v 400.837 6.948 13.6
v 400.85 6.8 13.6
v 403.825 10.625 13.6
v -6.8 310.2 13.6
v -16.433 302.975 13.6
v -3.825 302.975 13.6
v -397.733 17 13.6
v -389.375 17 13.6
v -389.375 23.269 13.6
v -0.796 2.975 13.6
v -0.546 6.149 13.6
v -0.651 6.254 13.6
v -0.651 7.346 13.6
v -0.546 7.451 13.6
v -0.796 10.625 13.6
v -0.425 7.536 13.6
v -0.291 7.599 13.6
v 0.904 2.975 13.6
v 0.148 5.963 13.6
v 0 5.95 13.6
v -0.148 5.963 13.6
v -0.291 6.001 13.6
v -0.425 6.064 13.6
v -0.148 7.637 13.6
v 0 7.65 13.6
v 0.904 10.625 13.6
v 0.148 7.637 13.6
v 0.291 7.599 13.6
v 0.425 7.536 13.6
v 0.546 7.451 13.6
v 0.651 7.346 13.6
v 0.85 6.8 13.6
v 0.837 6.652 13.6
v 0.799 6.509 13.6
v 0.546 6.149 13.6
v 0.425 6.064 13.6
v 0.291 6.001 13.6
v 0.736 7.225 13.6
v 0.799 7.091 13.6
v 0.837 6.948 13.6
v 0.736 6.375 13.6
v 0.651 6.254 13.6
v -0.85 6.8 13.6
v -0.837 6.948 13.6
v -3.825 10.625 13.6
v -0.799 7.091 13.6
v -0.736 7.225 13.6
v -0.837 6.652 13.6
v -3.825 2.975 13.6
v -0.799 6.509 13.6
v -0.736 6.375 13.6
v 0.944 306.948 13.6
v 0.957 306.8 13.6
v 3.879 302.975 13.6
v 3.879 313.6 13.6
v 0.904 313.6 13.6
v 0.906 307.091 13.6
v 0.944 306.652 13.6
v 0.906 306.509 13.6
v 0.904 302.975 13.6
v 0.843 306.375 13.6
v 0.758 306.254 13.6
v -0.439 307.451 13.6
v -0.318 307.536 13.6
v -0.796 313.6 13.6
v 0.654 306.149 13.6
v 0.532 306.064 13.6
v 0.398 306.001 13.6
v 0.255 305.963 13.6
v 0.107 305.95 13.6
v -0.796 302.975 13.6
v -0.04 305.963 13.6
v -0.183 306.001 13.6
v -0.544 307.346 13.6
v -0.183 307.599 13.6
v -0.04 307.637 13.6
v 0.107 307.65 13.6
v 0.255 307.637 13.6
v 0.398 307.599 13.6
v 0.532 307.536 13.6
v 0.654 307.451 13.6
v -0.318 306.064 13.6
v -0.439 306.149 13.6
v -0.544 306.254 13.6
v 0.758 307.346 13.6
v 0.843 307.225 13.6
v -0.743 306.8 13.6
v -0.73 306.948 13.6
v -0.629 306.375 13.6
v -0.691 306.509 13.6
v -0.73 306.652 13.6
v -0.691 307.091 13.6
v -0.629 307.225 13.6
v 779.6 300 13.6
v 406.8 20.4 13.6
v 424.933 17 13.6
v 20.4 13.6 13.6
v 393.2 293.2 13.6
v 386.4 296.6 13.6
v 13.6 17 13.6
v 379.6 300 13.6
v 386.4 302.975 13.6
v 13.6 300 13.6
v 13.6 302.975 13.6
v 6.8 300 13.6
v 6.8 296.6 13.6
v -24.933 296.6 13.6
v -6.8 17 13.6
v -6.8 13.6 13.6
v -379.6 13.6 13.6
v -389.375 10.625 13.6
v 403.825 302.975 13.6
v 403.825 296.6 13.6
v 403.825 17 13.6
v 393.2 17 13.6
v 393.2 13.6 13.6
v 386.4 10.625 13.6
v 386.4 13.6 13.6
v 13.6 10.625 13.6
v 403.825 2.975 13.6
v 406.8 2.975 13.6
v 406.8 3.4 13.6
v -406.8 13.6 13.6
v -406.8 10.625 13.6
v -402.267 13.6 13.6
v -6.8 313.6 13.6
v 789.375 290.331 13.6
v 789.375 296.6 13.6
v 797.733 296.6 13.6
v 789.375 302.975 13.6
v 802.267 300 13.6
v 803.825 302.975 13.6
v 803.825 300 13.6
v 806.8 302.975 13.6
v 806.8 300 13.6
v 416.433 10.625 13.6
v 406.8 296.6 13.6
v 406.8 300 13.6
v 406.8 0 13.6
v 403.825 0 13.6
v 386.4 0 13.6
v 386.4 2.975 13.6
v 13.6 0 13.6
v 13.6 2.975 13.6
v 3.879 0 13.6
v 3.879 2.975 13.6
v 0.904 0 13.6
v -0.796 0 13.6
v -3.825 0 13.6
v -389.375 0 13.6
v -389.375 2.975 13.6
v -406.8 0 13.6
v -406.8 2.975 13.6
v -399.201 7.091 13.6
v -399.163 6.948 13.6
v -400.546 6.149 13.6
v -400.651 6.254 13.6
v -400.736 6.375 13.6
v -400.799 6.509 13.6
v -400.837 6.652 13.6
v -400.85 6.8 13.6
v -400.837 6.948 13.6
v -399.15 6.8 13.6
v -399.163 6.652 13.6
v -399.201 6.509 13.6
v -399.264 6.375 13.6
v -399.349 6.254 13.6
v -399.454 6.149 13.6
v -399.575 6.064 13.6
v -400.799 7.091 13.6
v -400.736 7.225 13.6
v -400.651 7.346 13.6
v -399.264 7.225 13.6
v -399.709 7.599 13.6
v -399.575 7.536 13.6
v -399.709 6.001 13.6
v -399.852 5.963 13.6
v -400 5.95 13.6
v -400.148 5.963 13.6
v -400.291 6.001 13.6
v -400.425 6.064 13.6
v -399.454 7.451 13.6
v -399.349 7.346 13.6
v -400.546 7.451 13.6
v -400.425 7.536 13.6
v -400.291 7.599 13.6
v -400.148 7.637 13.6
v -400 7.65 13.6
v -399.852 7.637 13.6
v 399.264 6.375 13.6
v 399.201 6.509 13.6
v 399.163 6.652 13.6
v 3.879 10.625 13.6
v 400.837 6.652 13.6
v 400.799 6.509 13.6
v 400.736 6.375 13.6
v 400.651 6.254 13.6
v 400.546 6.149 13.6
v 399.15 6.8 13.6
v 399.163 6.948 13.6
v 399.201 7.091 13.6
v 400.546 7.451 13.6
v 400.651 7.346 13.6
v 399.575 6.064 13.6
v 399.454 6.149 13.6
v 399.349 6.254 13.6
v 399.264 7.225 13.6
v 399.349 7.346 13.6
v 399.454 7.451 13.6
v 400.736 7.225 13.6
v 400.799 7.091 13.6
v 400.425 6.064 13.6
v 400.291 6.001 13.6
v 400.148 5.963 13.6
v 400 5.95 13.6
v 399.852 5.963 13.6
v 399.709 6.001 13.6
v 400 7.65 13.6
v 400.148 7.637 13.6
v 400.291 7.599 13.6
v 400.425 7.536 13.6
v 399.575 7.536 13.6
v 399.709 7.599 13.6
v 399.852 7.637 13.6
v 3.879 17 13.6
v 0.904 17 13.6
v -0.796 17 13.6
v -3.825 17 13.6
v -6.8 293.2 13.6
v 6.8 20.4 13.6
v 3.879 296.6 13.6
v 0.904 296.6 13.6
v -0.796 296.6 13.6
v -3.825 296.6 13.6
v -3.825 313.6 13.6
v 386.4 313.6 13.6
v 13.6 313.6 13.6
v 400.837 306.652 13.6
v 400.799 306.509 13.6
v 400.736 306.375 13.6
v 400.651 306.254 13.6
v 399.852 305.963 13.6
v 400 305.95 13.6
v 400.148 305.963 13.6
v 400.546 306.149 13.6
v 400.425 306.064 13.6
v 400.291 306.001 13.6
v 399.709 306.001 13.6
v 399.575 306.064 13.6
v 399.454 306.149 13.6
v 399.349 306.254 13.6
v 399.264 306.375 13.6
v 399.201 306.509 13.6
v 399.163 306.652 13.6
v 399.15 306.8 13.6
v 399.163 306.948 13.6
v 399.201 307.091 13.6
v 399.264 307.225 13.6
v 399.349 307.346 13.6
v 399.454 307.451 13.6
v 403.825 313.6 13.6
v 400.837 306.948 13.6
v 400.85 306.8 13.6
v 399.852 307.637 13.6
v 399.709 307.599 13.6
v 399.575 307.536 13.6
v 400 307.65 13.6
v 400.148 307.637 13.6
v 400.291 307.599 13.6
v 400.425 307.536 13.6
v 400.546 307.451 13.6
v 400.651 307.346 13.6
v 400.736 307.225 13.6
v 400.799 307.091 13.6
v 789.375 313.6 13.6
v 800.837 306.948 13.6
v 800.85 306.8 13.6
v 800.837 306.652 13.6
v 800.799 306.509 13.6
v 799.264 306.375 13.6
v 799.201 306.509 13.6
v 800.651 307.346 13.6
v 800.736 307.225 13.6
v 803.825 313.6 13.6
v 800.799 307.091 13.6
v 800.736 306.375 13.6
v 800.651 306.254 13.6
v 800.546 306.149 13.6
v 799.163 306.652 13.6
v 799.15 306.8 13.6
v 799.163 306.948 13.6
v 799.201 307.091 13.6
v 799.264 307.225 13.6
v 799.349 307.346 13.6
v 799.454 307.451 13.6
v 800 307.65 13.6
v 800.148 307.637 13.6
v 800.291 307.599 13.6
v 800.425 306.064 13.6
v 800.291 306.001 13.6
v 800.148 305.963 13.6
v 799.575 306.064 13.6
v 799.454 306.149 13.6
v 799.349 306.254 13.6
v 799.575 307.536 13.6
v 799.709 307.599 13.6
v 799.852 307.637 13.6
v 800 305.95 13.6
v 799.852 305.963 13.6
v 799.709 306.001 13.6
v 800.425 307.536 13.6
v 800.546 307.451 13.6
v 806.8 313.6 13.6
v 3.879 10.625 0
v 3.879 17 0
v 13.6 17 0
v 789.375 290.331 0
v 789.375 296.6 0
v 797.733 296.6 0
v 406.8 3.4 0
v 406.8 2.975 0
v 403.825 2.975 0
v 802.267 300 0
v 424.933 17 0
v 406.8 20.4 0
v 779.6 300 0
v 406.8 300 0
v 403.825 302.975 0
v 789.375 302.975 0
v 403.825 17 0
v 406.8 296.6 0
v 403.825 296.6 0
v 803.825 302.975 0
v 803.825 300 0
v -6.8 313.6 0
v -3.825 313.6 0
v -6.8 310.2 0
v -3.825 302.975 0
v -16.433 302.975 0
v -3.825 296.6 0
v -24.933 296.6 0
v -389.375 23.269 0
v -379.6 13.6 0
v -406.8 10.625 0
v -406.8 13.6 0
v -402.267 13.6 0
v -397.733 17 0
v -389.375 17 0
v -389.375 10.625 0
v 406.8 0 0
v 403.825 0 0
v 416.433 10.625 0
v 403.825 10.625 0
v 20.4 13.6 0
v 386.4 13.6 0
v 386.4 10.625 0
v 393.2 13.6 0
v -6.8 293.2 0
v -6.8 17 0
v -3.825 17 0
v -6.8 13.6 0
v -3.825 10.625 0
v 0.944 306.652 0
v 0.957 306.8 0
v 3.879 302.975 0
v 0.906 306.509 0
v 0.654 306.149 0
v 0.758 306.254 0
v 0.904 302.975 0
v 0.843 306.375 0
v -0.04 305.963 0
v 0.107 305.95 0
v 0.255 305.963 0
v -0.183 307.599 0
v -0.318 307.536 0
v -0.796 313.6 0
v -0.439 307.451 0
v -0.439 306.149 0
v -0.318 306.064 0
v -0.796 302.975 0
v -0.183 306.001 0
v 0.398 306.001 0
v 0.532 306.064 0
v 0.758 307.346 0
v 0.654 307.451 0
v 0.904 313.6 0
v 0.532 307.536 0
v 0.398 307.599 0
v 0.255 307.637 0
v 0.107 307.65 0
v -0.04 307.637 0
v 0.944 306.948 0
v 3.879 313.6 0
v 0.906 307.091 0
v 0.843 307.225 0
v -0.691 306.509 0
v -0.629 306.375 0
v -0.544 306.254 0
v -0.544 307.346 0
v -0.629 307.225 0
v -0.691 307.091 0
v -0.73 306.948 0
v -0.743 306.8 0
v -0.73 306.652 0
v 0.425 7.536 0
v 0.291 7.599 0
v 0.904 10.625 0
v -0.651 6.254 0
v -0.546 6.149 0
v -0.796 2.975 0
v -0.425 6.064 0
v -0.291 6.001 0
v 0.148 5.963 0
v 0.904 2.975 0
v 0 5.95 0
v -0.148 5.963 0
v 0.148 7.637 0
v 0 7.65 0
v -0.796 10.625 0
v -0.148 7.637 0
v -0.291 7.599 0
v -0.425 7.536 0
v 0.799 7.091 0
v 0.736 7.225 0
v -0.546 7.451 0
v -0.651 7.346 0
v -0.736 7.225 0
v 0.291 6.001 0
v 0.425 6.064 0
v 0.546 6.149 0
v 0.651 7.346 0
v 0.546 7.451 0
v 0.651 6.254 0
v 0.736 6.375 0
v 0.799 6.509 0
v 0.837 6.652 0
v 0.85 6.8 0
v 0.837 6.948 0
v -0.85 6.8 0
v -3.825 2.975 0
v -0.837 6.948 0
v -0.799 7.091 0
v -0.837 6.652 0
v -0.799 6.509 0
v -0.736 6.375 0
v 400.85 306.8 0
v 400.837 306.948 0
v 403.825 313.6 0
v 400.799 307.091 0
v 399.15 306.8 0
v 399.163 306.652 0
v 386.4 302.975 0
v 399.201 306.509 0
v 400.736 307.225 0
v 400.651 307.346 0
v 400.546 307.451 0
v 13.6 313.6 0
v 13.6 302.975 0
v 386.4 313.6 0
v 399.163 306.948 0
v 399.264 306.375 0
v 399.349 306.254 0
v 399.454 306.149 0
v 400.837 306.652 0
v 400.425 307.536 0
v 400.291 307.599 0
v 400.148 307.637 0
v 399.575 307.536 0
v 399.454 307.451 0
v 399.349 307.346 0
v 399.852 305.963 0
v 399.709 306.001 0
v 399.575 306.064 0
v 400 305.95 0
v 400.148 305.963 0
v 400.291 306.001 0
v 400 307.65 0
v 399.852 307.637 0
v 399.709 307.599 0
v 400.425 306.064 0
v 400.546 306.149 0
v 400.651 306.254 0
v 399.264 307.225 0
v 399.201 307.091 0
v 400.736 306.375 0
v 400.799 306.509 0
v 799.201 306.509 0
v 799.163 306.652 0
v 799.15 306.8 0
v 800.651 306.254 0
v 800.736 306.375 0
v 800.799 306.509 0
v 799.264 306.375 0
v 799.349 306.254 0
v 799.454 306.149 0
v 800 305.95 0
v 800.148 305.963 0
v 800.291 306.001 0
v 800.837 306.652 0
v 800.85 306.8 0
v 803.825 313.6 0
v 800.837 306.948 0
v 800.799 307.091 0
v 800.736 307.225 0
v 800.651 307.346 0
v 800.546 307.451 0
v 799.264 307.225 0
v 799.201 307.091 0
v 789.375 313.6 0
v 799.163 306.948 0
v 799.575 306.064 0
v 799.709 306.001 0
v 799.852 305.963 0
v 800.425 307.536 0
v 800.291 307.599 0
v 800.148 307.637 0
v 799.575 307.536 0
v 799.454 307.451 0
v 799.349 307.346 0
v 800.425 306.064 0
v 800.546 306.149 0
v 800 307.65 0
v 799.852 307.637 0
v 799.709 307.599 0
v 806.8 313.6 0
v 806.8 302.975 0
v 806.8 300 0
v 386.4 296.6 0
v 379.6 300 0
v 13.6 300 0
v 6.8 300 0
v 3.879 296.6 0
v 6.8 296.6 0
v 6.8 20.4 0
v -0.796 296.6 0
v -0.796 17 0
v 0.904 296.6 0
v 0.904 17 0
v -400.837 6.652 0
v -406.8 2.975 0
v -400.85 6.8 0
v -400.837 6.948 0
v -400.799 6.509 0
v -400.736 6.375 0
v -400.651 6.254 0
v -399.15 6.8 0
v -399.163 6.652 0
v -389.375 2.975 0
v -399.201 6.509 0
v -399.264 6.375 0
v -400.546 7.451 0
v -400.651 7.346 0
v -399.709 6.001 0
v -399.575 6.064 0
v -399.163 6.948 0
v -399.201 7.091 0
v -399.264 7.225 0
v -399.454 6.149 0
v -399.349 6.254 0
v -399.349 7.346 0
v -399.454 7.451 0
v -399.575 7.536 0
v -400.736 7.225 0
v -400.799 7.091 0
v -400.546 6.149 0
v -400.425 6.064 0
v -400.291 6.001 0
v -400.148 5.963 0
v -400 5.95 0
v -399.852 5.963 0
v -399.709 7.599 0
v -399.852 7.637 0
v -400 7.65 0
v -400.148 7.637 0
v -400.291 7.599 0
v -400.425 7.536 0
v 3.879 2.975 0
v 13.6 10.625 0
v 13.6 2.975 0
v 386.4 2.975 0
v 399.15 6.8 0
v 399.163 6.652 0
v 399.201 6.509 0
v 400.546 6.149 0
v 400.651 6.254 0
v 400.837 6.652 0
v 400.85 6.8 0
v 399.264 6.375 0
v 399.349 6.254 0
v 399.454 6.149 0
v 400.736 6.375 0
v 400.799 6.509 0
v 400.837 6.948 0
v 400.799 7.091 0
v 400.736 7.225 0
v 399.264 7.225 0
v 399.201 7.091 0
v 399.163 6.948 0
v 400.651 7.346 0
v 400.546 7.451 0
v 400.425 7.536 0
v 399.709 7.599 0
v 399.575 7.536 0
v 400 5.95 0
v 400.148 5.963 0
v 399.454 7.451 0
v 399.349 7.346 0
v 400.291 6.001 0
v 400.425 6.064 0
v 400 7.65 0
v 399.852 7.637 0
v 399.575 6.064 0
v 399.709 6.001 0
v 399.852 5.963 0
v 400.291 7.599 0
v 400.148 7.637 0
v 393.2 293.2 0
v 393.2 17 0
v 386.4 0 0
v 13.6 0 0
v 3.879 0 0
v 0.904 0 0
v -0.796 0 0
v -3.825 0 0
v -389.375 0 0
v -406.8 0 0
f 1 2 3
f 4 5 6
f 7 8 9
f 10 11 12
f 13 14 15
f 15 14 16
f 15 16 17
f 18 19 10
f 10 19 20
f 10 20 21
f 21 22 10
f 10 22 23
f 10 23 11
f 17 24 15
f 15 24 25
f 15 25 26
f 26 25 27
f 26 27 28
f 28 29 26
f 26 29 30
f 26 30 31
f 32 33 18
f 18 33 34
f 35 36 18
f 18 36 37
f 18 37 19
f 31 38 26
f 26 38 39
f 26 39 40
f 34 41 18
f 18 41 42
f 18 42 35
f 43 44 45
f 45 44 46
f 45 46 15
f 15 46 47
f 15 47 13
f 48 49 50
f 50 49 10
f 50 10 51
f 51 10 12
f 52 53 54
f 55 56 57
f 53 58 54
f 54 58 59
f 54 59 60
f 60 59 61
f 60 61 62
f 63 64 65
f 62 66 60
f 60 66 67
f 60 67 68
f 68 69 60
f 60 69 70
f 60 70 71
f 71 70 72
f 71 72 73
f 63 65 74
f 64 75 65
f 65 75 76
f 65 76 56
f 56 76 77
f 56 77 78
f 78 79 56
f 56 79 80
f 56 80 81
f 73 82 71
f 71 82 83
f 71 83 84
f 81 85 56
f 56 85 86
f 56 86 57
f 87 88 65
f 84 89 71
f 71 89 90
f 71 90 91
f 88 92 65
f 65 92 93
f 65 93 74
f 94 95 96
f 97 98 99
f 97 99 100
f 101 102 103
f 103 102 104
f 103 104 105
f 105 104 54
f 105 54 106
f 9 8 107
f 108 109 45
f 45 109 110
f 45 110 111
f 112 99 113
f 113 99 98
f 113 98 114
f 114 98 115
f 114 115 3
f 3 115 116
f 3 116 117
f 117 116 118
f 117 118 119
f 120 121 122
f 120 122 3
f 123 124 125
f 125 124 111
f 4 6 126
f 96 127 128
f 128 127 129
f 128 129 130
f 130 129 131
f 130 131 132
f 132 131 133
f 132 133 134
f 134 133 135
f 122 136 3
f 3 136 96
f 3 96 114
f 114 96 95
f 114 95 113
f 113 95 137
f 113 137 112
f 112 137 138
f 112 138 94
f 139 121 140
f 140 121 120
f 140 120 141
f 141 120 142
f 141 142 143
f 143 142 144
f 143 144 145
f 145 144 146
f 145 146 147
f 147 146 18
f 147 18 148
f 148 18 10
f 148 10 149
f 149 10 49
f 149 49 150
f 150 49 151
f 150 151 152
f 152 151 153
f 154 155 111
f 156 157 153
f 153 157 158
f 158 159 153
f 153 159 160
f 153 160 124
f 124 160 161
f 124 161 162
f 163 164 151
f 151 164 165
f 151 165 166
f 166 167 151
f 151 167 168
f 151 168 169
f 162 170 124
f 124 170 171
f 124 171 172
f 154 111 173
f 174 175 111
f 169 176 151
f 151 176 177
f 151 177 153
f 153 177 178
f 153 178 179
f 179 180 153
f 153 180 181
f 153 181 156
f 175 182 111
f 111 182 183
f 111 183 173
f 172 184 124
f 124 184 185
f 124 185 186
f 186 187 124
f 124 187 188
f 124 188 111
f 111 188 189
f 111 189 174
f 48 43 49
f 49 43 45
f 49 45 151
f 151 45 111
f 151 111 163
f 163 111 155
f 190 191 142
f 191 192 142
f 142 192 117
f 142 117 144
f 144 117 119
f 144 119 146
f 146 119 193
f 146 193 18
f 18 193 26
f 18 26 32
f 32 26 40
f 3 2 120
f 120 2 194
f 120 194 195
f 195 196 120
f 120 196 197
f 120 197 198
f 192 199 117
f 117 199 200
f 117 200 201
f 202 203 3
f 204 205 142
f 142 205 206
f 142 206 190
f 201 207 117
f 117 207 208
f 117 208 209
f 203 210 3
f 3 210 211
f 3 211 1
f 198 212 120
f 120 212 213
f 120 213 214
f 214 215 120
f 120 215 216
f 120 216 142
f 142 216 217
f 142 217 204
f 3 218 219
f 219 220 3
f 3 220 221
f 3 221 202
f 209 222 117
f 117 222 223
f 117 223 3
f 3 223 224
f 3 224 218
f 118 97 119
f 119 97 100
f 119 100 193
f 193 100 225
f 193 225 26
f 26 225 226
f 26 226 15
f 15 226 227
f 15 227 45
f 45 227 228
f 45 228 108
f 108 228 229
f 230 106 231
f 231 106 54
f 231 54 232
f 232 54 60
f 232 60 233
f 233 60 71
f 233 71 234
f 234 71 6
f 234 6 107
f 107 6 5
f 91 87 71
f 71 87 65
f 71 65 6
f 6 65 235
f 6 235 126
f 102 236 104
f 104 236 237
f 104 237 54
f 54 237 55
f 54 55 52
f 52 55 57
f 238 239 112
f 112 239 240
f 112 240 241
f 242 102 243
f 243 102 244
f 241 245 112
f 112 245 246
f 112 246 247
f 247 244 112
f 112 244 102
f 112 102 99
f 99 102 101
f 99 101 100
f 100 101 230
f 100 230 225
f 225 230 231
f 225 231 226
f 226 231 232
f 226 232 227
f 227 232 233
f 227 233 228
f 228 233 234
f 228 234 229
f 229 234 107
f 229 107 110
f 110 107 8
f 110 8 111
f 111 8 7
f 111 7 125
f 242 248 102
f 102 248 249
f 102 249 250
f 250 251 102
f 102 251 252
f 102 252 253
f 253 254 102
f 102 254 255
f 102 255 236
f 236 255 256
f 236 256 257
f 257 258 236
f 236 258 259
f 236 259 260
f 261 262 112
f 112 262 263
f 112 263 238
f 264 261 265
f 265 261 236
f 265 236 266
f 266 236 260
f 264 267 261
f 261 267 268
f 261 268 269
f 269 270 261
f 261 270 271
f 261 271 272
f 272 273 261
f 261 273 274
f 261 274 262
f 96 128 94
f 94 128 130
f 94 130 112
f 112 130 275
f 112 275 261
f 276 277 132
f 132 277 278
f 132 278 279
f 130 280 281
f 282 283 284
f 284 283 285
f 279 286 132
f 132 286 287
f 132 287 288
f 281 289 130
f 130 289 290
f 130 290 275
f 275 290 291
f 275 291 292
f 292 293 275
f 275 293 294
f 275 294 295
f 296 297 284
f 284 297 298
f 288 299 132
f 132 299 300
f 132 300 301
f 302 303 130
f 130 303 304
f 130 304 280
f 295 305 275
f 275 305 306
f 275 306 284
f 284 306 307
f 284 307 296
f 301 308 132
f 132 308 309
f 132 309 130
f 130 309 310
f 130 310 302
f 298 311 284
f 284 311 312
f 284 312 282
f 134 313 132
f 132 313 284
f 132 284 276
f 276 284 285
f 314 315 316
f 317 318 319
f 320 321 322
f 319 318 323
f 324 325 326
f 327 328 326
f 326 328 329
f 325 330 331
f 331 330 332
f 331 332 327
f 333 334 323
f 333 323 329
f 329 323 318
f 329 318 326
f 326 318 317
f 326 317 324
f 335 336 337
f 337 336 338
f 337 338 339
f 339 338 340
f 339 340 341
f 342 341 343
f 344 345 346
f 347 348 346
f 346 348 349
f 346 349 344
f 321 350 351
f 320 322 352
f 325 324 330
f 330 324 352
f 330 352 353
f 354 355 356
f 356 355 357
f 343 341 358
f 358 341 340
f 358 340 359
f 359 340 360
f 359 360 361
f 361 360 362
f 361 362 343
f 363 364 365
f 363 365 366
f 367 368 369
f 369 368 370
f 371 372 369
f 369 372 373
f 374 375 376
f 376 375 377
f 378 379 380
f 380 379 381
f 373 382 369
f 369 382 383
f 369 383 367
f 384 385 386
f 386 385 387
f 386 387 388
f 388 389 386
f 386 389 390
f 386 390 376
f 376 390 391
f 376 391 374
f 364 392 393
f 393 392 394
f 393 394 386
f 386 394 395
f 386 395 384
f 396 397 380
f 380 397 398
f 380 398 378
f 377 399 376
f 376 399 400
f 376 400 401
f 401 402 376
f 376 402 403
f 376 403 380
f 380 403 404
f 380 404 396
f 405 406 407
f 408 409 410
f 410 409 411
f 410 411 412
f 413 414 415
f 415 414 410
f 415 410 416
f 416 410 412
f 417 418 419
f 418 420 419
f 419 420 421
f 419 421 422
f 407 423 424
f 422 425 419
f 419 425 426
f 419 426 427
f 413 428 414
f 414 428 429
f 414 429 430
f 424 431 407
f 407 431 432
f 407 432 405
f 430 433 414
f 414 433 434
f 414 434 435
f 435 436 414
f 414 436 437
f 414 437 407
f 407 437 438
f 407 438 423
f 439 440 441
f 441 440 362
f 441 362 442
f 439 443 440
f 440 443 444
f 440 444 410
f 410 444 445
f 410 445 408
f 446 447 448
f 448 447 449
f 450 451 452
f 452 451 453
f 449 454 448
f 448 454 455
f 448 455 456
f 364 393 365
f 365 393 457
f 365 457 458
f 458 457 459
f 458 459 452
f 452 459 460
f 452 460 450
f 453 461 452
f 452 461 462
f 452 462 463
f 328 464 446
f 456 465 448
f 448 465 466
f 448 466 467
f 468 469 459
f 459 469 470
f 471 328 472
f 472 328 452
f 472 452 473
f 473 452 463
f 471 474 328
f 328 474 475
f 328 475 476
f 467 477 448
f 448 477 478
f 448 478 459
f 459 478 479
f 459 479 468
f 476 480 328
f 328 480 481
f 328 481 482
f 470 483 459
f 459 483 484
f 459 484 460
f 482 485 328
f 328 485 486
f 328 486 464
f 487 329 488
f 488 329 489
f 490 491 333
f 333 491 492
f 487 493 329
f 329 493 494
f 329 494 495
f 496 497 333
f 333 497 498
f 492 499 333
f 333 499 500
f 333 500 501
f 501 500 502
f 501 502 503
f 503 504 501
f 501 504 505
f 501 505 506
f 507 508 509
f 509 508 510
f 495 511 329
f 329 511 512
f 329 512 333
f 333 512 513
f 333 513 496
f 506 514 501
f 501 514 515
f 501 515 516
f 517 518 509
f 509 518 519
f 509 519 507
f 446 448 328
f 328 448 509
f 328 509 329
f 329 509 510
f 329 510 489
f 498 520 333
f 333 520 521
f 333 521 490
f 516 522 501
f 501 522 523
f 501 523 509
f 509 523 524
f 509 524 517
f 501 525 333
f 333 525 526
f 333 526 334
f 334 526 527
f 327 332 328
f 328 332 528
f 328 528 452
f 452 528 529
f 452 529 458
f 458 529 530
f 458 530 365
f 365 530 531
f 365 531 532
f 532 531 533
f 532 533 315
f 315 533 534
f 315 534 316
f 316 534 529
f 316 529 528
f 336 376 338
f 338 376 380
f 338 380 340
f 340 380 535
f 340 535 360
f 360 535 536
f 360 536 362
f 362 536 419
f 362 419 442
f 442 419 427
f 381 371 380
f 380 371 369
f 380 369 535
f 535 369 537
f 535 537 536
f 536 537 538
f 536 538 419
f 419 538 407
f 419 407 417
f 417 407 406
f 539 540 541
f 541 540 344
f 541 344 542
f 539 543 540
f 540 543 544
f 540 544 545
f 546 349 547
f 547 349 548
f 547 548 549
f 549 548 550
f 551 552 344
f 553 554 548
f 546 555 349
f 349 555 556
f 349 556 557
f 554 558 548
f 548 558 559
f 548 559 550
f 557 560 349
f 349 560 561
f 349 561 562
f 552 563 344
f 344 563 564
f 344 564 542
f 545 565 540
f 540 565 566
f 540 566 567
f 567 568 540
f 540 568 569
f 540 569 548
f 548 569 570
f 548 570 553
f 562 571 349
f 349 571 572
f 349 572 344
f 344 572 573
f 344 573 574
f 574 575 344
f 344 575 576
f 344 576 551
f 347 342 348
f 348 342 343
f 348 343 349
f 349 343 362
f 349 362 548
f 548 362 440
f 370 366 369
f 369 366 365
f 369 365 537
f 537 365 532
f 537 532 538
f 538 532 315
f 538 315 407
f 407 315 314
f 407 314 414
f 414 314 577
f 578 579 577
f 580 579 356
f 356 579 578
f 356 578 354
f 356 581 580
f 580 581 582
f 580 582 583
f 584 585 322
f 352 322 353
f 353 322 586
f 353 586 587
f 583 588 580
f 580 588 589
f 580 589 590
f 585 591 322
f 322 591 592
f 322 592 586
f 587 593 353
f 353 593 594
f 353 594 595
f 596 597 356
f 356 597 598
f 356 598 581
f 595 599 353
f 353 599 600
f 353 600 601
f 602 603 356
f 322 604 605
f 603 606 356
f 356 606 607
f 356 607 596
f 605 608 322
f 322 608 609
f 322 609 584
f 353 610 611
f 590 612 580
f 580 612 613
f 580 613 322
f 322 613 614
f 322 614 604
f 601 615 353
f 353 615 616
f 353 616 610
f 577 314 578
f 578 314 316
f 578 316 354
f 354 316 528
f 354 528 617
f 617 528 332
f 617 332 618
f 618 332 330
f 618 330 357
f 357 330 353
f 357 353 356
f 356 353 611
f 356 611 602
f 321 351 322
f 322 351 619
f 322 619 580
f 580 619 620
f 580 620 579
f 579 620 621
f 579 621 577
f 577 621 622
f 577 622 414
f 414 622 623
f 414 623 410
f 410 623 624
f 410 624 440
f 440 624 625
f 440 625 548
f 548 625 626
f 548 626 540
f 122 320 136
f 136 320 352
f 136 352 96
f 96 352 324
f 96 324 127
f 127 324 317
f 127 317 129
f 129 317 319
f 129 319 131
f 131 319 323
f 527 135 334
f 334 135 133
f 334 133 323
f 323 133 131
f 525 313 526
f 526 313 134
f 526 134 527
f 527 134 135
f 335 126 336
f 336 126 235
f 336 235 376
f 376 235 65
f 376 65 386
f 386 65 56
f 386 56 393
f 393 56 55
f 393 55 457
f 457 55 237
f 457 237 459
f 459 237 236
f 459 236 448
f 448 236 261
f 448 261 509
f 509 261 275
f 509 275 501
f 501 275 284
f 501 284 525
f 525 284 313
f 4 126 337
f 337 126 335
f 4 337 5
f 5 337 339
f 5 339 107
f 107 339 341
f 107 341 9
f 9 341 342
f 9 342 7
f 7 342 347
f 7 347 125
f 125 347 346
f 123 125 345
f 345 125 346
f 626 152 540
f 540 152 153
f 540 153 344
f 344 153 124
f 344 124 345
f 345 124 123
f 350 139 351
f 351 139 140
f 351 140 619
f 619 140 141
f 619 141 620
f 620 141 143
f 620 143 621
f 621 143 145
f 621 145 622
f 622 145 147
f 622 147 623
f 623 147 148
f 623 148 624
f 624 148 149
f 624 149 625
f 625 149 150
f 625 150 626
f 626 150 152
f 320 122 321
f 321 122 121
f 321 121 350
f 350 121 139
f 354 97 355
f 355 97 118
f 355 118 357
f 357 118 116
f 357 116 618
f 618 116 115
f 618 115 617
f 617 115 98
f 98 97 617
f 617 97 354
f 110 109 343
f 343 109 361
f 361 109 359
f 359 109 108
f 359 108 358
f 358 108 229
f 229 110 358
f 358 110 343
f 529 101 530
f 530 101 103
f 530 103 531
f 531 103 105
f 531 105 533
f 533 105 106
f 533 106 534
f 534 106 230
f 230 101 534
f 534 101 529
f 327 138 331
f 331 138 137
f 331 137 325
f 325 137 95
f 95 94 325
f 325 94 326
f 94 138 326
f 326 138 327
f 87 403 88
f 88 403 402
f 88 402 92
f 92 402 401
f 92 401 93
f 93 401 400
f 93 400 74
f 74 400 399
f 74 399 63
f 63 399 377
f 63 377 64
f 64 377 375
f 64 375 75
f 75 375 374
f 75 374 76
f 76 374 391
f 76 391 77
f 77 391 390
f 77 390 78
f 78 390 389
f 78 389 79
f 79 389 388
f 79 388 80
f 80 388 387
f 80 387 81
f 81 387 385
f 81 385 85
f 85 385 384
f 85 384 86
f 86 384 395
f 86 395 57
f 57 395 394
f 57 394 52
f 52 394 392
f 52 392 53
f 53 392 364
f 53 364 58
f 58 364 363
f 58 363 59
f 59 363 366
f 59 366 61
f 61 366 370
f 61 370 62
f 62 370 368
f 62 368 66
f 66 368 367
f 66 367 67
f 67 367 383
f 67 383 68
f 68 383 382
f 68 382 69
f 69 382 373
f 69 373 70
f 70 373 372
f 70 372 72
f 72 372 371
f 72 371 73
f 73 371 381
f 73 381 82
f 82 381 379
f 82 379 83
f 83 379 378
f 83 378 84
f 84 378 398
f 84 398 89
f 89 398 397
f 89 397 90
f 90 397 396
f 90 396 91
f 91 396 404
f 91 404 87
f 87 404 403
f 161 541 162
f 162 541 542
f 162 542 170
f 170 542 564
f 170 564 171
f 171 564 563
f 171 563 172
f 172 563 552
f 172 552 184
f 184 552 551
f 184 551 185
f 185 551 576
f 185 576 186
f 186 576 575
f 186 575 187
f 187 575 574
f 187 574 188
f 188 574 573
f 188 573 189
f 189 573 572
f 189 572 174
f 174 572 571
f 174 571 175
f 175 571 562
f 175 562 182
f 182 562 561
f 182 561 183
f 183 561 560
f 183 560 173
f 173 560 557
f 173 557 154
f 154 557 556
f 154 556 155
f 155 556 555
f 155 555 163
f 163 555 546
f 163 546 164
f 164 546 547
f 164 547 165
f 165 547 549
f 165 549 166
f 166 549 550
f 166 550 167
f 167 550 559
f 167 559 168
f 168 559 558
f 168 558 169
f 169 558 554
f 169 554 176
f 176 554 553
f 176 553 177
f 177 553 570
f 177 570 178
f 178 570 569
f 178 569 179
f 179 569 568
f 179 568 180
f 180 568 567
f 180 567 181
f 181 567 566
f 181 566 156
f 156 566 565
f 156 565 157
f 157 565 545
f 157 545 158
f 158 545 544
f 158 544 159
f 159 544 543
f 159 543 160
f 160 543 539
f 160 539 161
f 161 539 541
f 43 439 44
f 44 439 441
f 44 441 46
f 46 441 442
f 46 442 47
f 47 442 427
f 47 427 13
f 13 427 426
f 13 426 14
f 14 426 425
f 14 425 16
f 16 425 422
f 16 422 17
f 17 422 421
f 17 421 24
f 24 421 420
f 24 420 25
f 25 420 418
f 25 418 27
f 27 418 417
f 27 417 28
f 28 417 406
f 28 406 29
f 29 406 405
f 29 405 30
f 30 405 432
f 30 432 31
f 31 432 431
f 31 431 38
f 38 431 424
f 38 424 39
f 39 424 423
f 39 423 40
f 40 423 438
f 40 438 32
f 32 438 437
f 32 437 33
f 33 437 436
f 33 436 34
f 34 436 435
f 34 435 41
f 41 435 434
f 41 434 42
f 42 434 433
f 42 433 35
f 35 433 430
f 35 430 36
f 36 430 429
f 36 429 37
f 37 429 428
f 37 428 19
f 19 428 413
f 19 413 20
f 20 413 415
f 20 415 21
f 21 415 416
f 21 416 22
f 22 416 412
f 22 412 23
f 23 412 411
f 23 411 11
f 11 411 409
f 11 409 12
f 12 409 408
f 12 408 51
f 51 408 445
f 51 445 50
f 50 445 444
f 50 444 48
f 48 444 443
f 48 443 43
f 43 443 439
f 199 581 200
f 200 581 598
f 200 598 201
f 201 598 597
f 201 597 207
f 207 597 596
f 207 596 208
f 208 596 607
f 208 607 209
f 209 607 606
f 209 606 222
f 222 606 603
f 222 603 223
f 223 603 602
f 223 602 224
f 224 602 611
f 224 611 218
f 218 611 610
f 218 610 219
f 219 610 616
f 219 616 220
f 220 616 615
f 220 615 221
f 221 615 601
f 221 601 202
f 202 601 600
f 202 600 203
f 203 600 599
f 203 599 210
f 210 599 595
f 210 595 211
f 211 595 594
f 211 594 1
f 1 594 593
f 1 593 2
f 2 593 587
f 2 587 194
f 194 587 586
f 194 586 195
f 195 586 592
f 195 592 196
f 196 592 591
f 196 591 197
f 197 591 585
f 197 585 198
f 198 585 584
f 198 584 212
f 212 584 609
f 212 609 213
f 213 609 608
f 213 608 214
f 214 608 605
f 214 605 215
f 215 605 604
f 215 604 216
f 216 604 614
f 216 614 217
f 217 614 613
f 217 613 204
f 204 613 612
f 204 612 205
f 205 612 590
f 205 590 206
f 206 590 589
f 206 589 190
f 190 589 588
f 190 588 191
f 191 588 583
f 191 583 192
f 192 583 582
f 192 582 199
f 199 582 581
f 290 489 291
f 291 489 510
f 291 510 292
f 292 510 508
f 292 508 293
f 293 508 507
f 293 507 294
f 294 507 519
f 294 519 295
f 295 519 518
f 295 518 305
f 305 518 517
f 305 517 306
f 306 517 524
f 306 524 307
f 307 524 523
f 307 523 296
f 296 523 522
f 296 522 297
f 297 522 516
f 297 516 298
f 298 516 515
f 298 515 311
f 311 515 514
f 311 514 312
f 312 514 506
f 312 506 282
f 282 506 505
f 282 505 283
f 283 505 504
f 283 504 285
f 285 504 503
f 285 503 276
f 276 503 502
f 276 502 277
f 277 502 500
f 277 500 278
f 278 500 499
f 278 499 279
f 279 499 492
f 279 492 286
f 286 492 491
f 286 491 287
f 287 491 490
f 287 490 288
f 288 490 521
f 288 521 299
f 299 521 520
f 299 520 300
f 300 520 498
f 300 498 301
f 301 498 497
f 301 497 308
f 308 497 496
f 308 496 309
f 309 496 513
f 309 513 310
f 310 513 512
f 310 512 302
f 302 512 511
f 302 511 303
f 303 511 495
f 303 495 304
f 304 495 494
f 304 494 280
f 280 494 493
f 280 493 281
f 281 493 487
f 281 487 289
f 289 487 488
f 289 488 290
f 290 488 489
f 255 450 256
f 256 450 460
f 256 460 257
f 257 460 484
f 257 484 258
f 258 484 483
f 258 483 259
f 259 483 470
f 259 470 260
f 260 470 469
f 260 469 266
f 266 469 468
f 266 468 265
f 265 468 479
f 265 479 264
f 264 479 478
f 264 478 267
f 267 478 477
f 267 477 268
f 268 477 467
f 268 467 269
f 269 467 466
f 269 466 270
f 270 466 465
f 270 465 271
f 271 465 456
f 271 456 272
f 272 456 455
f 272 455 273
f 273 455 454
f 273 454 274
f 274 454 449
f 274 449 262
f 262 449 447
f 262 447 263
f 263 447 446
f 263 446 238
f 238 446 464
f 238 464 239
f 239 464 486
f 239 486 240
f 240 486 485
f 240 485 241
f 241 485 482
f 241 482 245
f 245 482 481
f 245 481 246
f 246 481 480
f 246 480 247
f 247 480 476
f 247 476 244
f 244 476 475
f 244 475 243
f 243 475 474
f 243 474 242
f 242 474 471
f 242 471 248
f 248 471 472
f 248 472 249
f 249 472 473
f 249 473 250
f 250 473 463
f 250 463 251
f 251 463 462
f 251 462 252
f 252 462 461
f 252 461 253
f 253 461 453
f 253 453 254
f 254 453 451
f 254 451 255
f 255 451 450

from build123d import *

# Parameters (mm, degrees)
SKETCH2_R           = 0.85
BOSS_EXTRUDE1_DEPTH = 13.6


with BuildPart() as part:
    # Sketch2 → Boss-Extrude1 (new body)
    with BuildSketch(Plane.XY):
        Polygon((400, 0), (-400, 0), (-406.8, 0), (-406.8, 13.6), (-402.266666667, 13.6), (-306.362355233, 85.528233586), (-6.8, 310.200000045), (-6.8, 313.6), (0, 313.6), (800, 313.6), (806.8, 313.6), (806.8, 300), (802.266666606, 300), (406.8, 3.4), (406.8, 0), align=None)
        with Locations((0.107289977, 306.8)):
            Circle(SKETCH2_R, mode=Mode.SUBTRACT)
        with Locations((-399.99999994, 6.8)):
            Circle(SKETCH2_R, mode=Mode.SUBTRACT)
        with Locations((0, 6.8)):
            Circle(SKETCH2_R, mode=Mode.SUBTRACT)
        with Locations((400, 6.8)):
            Circle(SKETCH2_R, mode=Mode.SUBTRACT)
        with Locations((800, 306.8)):
            Circle(SKETCH2_R, mode=Mode.SUBTRACT)
        with Locations((400, 306.8)):
            Circle(SKETCH2_R, mode=Mode.SUBTRACT)
        Polygon((-6.8, 13.6), (-6.8, 293.200000044), (-298.202355233, 74.648233587), (-379.600000002, 13.6), align=None, mode=Mode.SUBTRACT)
        Polygon((6.8, 300), (6.8, 20.4), (106.280361955, 95.010271466), (379.6, 300), align=None, mode=Mode.SUBTRACT)
        Polygon((393.2, 13.6), (393.2, 293.2), (114.440361955, 84.130271466), (20.4, 13.6), align=None, mode=Mode.SUBTRACT)
        Polygon((406.8, 20.400000001), (406.8, 300), (779.599999942, 300), align=None, mode=Mode.SUBTRACT)
    extrude(amount=BOSS_EXTRUDE1_DEPTH)


solid = part.part
